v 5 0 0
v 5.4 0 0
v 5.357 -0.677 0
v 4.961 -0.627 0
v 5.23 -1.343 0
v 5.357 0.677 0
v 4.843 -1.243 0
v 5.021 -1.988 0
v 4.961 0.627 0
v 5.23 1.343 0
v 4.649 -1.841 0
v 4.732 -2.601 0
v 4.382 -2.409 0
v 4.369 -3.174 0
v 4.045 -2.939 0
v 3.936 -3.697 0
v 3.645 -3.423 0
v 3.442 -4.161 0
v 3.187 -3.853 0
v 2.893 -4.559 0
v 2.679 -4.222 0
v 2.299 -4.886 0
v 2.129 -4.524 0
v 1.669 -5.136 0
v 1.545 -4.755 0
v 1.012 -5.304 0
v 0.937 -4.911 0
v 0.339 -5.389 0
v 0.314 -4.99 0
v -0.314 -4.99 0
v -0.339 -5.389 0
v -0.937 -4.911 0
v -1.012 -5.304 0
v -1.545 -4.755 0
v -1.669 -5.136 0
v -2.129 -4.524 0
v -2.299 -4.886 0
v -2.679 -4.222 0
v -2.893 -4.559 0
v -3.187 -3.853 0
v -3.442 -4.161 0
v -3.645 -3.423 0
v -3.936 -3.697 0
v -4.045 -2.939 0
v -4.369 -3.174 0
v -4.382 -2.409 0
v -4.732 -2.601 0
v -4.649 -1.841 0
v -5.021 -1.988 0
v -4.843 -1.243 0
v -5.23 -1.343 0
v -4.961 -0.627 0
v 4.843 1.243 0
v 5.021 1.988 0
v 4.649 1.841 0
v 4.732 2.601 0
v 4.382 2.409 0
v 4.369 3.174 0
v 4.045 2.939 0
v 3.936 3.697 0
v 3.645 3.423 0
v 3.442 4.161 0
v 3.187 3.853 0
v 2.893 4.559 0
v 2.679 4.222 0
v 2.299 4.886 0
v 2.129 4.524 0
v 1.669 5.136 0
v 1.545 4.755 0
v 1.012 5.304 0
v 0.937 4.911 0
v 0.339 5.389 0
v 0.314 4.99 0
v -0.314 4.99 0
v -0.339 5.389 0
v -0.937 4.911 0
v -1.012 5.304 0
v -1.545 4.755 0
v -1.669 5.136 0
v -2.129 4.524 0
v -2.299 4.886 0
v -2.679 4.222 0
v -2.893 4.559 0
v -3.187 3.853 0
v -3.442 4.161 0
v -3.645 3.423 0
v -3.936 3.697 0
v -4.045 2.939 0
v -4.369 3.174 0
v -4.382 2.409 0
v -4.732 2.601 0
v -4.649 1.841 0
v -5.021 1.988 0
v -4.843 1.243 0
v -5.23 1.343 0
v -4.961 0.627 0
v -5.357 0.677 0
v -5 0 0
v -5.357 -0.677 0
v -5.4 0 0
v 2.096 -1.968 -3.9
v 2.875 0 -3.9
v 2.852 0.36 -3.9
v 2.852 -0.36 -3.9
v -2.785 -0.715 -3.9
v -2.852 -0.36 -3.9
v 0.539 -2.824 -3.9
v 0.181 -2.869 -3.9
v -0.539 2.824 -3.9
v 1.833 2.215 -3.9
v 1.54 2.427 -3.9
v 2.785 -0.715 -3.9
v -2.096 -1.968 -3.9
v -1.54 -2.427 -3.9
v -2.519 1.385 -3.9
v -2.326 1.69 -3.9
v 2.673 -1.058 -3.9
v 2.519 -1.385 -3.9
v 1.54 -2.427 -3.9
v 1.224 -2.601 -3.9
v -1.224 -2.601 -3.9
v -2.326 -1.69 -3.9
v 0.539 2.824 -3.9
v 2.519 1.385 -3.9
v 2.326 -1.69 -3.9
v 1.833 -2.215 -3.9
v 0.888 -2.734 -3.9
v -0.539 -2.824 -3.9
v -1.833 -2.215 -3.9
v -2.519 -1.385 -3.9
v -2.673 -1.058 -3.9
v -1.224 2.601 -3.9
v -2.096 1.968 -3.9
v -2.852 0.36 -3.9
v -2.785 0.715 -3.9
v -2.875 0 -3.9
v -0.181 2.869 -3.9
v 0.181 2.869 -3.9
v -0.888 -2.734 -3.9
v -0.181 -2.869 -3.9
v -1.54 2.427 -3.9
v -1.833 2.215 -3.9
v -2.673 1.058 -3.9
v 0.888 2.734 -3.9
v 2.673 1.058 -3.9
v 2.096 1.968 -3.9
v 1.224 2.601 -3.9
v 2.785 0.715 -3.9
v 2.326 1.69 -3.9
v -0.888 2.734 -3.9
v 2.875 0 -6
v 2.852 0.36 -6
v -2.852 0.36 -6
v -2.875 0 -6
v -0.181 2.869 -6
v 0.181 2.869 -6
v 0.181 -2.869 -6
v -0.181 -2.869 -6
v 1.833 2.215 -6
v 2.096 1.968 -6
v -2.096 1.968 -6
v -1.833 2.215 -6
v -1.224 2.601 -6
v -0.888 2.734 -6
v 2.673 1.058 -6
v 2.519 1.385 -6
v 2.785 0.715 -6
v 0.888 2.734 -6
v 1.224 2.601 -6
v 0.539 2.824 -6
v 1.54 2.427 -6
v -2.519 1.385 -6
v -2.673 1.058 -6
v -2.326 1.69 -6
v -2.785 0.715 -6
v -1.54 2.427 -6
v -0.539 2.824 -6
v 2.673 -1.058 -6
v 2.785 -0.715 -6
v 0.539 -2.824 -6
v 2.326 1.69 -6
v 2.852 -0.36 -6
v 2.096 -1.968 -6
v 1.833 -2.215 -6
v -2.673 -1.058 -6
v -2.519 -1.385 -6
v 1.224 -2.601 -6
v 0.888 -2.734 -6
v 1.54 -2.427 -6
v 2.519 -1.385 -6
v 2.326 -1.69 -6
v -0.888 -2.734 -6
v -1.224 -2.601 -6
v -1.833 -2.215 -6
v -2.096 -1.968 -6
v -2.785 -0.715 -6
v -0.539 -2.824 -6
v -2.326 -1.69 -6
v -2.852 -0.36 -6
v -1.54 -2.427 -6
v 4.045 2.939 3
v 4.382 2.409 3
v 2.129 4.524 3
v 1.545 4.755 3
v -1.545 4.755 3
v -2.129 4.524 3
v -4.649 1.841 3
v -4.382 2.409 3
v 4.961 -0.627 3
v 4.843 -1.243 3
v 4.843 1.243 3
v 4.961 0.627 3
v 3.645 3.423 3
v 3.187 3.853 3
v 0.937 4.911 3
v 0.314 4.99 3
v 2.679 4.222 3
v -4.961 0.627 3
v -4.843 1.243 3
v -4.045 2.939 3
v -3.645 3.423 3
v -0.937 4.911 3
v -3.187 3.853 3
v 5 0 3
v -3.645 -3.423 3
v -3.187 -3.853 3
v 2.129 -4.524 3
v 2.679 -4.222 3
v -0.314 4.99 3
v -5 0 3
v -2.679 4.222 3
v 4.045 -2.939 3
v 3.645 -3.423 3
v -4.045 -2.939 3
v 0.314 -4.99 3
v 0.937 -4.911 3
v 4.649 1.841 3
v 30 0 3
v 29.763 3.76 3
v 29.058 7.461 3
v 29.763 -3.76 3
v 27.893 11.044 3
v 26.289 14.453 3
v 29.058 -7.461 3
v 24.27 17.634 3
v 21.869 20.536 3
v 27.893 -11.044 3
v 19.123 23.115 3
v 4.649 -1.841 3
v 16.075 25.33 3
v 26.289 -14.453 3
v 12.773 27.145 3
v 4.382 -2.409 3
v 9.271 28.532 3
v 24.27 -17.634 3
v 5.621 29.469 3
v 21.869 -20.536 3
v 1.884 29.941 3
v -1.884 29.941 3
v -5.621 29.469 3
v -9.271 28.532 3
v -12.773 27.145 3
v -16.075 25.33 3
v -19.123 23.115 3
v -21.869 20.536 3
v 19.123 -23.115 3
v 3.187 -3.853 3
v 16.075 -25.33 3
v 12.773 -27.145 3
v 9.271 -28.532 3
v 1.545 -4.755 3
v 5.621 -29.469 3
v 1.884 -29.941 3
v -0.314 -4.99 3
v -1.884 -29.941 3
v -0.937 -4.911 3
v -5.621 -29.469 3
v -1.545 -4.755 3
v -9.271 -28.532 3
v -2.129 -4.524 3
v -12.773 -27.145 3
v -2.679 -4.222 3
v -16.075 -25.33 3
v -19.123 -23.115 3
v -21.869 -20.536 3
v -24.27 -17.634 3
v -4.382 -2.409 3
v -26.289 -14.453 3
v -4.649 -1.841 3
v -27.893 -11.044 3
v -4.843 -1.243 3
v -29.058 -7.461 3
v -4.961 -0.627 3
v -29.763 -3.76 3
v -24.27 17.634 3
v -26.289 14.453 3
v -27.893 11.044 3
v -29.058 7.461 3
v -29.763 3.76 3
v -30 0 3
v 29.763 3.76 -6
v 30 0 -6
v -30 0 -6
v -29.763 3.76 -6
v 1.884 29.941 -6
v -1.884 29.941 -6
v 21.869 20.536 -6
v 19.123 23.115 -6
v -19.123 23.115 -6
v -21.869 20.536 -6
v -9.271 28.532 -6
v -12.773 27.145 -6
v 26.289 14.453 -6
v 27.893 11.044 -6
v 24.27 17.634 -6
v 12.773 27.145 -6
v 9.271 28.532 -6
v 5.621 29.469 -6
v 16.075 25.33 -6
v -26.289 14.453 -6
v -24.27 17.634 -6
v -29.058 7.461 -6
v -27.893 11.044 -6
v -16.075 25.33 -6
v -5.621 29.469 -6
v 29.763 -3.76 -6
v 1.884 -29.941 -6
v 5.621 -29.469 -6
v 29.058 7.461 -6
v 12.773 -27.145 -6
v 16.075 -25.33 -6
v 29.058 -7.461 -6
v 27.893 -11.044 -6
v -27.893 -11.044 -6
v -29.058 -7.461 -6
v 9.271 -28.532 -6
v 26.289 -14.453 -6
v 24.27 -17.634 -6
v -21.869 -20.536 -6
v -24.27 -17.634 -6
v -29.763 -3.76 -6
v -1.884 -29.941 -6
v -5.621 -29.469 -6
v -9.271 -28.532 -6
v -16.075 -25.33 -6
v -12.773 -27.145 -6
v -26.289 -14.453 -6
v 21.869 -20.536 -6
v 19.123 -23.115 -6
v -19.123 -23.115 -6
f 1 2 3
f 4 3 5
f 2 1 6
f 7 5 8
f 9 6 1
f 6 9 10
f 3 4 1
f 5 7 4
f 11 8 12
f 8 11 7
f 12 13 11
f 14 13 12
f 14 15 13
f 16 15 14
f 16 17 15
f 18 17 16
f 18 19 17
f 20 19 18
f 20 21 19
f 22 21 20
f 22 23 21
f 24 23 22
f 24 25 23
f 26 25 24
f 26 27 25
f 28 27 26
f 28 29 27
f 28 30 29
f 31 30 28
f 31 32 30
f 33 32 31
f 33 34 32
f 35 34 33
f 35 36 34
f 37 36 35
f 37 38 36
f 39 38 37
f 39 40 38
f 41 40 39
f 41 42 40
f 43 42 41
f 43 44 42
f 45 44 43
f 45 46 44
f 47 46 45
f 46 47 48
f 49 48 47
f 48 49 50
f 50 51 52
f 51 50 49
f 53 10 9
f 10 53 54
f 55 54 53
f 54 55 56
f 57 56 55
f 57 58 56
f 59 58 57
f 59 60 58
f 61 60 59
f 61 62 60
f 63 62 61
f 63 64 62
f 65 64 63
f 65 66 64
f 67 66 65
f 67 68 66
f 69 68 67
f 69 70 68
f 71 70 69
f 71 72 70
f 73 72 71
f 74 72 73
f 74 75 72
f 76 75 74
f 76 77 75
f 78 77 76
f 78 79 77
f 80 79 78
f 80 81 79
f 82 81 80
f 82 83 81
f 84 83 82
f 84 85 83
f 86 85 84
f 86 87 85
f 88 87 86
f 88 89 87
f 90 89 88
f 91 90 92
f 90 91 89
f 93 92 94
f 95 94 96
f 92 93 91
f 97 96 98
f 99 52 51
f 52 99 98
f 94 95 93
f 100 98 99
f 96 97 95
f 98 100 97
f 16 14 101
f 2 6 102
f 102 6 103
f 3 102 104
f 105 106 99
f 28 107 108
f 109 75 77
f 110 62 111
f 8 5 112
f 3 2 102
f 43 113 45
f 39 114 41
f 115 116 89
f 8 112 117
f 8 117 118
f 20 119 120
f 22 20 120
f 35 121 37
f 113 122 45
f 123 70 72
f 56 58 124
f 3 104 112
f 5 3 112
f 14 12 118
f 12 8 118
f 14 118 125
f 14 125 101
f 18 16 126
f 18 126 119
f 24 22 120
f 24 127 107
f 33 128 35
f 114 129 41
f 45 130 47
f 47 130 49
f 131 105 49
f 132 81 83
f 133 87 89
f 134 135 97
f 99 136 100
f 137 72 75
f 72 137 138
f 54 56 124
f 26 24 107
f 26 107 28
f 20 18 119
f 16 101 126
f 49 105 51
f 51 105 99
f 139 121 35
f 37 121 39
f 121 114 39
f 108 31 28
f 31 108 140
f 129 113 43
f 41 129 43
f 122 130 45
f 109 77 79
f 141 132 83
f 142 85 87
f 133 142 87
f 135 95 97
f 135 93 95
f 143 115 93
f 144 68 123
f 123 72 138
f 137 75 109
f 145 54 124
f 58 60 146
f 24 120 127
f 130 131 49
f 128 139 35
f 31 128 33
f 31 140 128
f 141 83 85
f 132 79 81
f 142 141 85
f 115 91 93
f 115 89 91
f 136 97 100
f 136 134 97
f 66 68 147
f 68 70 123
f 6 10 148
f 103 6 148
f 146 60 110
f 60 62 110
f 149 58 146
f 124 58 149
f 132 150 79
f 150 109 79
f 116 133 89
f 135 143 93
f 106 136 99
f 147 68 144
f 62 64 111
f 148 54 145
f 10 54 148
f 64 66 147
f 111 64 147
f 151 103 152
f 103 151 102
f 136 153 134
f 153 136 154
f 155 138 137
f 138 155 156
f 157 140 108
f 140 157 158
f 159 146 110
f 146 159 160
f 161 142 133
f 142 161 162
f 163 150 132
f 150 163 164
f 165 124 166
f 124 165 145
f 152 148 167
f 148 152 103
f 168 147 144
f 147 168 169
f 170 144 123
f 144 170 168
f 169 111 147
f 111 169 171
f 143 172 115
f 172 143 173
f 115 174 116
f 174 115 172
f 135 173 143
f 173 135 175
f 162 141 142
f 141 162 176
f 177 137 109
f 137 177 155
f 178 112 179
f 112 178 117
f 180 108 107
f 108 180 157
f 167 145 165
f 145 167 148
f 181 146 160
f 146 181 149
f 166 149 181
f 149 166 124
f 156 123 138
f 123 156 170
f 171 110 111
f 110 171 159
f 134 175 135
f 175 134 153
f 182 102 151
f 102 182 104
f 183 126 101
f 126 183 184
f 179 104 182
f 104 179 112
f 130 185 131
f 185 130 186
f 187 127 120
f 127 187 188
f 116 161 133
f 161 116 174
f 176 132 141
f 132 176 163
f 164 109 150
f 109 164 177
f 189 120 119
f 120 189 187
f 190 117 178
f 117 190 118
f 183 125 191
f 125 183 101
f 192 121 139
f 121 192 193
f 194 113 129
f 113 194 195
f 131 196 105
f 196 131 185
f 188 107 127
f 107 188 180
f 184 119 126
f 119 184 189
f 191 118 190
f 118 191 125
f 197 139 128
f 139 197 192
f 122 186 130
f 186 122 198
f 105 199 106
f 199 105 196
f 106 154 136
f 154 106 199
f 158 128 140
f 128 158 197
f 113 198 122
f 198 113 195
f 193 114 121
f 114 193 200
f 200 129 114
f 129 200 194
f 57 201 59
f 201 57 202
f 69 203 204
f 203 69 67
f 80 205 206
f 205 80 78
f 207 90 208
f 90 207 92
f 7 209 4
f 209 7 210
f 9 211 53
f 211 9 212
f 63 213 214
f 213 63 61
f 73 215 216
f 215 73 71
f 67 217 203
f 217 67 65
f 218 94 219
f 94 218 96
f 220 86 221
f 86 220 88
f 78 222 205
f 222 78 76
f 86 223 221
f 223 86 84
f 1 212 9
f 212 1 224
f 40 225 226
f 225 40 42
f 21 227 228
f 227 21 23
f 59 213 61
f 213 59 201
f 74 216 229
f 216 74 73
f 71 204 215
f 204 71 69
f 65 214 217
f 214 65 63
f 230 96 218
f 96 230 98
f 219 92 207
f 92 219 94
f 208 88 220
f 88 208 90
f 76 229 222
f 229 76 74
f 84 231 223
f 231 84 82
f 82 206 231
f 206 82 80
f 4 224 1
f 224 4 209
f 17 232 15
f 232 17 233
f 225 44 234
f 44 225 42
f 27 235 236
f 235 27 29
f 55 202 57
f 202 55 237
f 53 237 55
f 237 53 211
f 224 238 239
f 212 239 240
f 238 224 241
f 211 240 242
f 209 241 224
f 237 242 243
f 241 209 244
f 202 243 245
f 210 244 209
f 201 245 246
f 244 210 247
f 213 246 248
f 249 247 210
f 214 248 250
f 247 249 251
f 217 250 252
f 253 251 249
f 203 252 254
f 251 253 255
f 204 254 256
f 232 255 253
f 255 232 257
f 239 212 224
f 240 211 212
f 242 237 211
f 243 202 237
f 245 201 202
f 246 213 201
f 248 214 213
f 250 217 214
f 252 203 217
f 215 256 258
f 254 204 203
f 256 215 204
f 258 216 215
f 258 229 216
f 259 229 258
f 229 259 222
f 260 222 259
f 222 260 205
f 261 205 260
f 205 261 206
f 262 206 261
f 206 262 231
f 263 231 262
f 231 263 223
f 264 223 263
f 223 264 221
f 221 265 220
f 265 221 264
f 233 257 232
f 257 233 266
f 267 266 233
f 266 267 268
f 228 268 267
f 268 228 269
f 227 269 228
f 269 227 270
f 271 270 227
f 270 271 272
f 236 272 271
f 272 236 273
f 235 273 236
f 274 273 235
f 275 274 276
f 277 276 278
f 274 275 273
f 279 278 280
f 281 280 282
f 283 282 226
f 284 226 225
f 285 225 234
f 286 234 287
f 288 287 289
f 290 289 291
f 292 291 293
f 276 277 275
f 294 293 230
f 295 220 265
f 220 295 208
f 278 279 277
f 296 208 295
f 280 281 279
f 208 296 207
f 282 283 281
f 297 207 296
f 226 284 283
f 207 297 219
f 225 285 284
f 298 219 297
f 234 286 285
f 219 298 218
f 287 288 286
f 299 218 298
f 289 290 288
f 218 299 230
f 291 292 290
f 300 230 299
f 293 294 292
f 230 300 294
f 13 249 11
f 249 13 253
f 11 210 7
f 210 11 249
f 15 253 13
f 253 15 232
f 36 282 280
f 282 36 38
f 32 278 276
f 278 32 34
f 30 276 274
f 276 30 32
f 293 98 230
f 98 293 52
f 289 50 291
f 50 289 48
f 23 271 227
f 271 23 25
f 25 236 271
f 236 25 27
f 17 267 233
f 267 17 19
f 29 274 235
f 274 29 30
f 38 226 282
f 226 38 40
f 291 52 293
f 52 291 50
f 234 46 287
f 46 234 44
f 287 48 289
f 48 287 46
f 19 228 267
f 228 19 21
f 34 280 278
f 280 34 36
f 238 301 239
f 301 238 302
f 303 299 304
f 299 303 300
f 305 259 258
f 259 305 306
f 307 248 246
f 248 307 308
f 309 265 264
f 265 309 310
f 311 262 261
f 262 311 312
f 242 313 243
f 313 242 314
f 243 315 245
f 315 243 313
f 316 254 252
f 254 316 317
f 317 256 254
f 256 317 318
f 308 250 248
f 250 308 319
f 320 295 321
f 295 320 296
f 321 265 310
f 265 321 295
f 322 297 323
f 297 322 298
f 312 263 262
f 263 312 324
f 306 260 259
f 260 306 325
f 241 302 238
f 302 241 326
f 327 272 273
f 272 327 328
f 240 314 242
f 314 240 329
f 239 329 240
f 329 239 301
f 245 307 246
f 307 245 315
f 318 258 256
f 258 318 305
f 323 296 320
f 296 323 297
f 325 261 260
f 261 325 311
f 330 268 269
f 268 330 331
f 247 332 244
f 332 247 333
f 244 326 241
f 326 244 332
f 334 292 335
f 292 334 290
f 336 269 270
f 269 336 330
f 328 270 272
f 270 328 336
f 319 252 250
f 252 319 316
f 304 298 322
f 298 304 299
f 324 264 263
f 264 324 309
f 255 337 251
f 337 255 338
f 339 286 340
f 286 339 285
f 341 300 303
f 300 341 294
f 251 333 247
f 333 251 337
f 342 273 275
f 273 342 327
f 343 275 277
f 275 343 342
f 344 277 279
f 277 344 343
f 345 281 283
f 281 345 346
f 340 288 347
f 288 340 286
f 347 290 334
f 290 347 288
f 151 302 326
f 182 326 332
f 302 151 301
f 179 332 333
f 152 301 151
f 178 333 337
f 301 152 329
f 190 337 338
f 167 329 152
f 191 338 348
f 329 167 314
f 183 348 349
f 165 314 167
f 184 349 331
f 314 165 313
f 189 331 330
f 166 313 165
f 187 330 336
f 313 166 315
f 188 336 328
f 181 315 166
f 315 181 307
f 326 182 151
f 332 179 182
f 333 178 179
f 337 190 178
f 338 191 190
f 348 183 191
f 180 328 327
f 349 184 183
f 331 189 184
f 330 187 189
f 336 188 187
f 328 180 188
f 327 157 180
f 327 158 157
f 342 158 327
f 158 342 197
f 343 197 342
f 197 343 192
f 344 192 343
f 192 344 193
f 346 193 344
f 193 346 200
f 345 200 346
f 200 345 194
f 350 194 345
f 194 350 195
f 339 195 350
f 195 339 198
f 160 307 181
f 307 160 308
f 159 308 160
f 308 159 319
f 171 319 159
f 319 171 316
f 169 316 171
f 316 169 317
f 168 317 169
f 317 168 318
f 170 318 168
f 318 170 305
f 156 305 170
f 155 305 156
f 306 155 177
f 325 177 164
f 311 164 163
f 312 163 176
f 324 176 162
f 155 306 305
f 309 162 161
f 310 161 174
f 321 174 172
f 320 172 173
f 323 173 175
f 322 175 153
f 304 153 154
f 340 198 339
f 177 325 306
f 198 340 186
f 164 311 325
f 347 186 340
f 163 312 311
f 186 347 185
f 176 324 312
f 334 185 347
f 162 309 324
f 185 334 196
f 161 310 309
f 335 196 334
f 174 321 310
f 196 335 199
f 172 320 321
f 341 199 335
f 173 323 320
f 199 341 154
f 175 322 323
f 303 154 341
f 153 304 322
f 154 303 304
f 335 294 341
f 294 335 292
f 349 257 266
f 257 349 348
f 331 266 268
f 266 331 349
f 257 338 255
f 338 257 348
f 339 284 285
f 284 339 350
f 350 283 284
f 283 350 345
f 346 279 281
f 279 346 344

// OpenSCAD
$fn = 50;


difference() {
	union() {
		translate(v = [0, 0, -6.0000000000]) {
			cylinder(h = 9, r = 30.0000000000);
		}
	}
	union() {
		translate(v = [0, 0, 0]) {
			rotate(a = [0, 0, 0]) {
				difference() {
					union() {
						translate(v = [0, 0, -9.0000000000]) {
							cylinder(h = 9, r = 2.6000000000);
						}
						translate(v = [0, 0, -3.9000000000]) {
							cylinder(h = 3.9000000000, r1 = 2.8750000000, r2 = 5.4000000000);
						}
						translate(v = [0, 0, -9.0000000000]) {
							cylinder(h = 9, r = 2.8750000000);
						}
						translate(v = [0, 0, -9.0000000000]) {
							cylinder(h = 9, r = 2.6000000000);
						}
					}
					union();
				}
			}
		}
		#cylinder(h = 3, r = 5.0000000000);
	}
}
